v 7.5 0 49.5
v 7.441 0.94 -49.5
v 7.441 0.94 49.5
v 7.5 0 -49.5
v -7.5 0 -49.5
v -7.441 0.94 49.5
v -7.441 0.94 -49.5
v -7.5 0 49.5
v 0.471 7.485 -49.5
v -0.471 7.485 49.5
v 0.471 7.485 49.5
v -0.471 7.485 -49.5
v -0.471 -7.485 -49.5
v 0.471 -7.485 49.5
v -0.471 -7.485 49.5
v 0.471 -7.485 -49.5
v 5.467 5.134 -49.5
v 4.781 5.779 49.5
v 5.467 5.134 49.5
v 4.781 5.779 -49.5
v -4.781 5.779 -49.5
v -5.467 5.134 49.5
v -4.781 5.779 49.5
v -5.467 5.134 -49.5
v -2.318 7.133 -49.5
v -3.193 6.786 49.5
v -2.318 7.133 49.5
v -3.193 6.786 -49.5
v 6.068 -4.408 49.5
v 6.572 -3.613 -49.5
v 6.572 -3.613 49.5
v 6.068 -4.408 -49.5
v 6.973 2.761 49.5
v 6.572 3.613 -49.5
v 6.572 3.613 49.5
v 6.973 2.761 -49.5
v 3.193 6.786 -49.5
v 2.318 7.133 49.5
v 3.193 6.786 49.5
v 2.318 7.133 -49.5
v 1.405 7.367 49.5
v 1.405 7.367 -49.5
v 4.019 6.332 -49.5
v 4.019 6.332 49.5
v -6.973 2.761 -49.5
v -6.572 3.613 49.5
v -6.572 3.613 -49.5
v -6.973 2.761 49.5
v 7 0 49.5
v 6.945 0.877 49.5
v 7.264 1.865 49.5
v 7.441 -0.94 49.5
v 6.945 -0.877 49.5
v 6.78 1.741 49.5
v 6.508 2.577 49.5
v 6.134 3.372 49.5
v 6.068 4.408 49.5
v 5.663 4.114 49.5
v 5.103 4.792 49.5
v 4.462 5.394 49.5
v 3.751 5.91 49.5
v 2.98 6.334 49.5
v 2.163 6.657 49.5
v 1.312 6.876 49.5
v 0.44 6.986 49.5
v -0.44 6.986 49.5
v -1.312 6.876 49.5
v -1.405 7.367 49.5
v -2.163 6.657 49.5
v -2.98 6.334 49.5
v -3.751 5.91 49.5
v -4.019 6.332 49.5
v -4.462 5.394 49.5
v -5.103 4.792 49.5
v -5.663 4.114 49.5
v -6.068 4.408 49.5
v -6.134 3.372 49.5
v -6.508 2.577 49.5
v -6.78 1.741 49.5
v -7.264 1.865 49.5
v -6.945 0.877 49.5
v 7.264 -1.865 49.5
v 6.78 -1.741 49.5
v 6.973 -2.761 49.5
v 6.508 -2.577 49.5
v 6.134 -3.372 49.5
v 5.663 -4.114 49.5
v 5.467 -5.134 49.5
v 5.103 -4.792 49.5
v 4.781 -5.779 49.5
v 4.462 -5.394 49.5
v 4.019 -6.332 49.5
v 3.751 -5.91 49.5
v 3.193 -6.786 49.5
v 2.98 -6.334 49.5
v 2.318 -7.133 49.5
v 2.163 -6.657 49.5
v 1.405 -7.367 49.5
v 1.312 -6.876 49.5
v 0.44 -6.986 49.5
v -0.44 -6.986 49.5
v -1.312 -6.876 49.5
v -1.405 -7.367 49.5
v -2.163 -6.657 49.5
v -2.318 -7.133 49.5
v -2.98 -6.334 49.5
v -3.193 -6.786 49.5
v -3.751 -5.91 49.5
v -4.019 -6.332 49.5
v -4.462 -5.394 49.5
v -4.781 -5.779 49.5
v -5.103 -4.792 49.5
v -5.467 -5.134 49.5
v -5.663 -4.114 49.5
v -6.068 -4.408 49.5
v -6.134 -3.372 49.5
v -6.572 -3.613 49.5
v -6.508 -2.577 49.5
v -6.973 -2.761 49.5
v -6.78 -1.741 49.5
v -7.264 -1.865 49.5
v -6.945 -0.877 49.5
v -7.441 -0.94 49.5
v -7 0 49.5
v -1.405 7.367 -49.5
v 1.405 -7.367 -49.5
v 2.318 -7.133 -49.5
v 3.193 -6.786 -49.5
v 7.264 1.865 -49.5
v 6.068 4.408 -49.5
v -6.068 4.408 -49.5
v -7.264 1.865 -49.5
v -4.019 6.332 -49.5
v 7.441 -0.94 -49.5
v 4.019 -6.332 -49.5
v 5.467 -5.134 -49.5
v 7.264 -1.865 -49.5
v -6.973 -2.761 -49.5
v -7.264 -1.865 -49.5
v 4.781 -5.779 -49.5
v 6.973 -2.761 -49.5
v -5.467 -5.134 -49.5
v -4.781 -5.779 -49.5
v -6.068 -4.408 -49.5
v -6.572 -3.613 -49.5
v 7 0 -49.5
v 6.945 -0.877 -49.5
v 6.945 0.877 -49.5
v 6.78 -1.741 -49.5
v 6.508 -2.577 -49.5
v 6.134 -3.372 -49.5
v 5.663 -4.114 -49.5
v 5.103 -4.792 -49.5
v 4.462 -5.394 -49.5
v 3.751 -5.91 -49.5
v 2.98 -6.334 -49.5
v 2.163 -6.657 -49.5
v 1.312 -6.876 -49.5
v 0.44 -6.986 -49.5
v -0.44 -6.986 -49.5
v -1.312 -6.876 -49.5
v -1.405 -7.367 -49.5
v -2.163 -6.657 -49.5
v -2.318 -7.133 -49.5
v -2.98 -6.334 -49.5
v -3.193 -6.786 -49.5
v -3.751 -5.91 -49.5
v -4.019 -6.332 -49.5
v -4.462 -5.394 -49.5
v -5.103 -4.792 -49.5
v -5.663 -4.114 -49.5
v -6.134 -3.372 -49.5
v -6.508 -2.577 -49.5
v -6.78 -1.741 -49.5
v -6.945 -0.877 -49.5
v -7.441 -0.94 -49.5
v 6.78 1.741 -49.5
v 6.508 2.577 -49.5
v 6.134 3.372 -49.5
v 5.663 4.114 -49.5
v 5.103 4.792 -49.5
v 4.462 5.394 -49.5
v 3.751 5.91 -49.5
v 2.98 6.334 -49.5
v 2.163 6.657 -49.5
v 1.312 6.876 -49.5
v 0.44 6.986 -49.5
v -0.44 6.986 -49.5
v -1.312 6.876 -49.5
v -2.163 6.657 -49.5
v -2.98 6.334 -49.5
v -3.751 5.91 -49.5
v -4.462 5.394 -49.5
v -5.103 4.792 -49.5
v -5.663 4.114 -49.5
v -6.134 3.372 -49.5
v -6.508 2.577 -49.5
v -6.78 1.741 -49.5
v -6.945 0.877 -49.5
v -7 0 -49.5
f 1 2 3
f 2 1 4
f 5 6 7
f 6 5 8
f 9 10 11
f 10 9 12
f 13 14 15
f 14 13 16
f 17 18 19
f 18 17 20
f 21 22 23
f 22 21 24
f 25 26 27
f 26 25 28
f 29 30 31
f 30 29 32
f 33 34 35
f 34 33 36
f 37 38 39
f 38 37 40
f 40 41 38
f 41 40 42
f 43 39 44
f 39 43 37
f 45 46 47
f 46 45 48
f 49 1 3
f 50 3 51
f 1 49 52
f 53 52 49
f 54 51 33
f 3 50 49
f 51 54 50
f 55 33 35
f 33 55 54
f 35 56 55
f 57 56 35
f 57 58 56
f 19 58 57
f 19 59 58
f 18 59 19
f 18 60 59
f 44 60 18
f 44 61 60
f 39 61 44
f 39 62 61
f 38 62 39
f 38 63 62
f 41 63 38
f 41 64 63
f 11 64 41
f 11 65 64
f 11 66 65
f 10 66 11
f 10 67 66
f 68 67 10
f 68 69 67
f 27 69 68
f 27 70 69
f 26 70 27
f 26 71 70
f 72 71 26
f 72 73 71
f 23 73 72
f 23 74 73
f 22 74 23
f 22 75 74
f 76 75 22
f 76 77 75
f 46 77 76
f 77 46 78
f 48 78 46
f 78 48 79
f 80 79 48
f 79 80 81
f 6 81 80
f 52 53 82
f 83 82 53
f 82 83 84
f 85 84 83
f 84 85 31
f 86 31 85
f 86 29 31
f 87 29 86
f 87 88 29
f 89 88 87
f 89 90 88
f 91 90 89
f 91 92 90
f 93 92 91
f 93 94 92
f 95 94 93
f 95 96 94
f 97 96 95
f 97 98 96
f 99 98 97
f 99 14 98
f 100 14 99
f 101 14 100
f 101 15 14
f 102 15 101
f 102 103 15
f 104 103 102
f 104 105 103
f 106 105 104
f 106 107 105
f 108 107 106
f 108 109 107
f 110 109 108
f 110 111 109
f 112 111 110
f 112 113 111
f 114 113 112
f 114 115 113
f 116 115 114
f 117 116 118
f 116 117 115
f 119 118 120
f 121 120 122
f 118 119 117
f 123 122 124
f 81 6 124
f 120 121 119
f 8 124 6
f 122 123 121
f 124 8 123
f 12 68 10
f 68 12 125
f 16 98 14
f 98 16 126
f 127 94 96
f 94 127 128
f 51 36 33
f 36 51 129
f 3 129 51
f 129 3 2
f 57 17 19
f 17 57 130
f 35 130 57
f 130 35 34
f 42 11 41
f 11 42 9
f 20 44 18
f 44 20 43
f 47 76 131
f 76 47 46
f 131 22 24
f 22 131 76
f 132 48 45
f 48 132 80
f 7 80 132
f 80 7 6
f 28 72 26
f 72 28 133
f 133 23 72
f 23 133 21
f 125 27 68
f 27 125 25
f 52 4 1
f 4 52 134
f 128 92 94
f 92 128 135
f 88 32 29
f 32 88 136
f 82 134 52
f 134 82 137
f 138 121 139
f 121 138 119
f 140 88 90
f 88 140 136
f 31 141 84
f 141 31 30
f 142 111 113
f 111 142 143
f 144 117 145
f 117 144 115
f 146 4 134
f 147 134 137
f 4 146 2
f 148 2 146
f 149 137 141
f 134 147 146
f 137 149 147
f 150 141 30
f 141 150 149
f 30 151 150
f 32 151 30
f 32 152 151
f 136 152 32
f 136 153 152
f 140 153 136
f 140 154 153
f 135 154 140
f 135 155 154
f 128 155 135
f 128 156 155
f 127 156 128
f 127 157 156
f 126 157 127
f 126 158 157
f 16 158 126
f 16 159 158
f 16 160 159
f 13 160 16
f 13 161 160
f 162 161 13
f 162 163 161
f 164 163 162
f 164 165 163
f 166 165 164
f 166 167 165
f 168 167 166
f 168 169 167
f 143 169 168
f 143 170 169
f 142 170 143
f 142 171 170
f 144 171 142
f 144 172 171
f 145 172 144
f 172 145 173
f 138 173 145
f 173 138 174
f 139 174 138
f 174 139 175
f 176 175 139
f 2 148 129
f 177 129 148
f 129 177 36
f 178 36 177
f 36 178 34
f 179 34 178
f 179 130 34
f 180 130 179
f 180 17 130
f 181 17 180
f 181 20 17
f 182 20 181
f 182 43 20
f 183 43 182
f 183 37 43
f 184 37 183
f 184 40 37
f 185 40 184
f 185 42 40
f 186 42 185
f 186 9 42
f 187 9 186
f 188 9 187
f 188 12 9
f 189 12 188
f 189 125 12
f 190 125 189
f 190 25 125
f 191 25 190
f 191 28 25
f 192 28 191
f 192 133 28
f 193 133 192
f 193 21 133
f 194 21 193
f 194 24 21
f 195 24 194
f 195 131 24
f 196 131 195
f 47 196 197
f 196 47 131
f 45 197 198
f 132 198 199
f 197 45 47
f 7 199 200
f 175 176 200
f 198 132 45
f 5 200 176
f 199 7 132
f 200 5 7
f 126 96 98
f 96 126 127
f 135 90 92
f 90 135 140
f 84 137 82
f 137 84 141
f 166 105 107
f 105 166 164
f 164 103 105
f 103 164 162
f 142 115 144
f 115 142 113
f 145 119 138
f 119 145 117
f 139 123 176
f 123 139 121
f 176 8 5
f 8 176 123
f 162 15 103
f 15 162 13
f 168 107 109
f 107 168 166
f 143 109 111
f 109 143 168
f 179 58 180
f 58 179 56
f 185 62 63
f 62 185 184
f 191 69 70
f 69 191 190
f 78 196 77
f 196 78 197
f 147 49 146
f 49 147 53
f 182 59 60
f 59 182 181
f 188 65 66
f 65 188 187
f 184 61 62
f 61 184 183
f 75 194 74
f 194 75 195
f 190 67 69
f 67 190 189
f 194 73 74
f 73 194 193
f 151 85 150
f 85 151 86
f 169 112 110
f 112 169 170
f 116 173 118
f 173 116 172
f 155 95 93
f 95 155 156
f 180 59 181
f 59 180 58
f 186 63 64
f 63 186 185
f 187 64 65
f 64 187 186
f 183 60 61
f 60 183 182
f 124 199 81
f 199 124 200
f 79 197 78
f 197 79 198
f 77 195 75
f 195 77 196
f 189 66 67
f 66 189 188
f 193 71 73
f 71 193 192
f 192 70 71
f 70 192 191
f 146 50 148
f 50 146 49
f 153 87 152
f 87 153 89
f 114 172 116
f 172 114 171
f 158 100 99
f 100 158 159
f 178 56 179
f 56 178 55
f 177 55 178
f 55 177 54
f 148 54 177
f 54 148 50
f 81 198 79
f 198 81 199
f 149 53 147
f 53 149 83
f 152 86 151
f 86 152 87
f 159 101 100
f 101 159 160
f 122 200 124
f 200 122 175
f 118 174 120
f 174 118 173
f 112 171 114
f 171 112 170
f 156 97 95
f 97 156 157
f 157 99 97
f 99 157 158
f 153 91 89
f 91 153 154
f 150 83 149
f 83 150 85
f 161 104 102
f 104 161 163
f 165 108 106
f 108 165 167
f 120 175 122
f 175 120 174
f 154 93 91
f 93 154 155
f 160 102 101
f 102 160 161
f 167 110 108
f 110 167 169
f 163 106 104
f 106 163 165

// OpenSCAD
$fn = 50;


difference() {
	union() {
		translate(v = [0, 0, -49.5000000000]) {
			cylinder(h = 99, r = 7.5000000000);
		}
	}
	union() {
		translate(v = [0, 0, -100.0000000000]) {
			cylinder(h = 200, r = 7);
		}
	}
}
